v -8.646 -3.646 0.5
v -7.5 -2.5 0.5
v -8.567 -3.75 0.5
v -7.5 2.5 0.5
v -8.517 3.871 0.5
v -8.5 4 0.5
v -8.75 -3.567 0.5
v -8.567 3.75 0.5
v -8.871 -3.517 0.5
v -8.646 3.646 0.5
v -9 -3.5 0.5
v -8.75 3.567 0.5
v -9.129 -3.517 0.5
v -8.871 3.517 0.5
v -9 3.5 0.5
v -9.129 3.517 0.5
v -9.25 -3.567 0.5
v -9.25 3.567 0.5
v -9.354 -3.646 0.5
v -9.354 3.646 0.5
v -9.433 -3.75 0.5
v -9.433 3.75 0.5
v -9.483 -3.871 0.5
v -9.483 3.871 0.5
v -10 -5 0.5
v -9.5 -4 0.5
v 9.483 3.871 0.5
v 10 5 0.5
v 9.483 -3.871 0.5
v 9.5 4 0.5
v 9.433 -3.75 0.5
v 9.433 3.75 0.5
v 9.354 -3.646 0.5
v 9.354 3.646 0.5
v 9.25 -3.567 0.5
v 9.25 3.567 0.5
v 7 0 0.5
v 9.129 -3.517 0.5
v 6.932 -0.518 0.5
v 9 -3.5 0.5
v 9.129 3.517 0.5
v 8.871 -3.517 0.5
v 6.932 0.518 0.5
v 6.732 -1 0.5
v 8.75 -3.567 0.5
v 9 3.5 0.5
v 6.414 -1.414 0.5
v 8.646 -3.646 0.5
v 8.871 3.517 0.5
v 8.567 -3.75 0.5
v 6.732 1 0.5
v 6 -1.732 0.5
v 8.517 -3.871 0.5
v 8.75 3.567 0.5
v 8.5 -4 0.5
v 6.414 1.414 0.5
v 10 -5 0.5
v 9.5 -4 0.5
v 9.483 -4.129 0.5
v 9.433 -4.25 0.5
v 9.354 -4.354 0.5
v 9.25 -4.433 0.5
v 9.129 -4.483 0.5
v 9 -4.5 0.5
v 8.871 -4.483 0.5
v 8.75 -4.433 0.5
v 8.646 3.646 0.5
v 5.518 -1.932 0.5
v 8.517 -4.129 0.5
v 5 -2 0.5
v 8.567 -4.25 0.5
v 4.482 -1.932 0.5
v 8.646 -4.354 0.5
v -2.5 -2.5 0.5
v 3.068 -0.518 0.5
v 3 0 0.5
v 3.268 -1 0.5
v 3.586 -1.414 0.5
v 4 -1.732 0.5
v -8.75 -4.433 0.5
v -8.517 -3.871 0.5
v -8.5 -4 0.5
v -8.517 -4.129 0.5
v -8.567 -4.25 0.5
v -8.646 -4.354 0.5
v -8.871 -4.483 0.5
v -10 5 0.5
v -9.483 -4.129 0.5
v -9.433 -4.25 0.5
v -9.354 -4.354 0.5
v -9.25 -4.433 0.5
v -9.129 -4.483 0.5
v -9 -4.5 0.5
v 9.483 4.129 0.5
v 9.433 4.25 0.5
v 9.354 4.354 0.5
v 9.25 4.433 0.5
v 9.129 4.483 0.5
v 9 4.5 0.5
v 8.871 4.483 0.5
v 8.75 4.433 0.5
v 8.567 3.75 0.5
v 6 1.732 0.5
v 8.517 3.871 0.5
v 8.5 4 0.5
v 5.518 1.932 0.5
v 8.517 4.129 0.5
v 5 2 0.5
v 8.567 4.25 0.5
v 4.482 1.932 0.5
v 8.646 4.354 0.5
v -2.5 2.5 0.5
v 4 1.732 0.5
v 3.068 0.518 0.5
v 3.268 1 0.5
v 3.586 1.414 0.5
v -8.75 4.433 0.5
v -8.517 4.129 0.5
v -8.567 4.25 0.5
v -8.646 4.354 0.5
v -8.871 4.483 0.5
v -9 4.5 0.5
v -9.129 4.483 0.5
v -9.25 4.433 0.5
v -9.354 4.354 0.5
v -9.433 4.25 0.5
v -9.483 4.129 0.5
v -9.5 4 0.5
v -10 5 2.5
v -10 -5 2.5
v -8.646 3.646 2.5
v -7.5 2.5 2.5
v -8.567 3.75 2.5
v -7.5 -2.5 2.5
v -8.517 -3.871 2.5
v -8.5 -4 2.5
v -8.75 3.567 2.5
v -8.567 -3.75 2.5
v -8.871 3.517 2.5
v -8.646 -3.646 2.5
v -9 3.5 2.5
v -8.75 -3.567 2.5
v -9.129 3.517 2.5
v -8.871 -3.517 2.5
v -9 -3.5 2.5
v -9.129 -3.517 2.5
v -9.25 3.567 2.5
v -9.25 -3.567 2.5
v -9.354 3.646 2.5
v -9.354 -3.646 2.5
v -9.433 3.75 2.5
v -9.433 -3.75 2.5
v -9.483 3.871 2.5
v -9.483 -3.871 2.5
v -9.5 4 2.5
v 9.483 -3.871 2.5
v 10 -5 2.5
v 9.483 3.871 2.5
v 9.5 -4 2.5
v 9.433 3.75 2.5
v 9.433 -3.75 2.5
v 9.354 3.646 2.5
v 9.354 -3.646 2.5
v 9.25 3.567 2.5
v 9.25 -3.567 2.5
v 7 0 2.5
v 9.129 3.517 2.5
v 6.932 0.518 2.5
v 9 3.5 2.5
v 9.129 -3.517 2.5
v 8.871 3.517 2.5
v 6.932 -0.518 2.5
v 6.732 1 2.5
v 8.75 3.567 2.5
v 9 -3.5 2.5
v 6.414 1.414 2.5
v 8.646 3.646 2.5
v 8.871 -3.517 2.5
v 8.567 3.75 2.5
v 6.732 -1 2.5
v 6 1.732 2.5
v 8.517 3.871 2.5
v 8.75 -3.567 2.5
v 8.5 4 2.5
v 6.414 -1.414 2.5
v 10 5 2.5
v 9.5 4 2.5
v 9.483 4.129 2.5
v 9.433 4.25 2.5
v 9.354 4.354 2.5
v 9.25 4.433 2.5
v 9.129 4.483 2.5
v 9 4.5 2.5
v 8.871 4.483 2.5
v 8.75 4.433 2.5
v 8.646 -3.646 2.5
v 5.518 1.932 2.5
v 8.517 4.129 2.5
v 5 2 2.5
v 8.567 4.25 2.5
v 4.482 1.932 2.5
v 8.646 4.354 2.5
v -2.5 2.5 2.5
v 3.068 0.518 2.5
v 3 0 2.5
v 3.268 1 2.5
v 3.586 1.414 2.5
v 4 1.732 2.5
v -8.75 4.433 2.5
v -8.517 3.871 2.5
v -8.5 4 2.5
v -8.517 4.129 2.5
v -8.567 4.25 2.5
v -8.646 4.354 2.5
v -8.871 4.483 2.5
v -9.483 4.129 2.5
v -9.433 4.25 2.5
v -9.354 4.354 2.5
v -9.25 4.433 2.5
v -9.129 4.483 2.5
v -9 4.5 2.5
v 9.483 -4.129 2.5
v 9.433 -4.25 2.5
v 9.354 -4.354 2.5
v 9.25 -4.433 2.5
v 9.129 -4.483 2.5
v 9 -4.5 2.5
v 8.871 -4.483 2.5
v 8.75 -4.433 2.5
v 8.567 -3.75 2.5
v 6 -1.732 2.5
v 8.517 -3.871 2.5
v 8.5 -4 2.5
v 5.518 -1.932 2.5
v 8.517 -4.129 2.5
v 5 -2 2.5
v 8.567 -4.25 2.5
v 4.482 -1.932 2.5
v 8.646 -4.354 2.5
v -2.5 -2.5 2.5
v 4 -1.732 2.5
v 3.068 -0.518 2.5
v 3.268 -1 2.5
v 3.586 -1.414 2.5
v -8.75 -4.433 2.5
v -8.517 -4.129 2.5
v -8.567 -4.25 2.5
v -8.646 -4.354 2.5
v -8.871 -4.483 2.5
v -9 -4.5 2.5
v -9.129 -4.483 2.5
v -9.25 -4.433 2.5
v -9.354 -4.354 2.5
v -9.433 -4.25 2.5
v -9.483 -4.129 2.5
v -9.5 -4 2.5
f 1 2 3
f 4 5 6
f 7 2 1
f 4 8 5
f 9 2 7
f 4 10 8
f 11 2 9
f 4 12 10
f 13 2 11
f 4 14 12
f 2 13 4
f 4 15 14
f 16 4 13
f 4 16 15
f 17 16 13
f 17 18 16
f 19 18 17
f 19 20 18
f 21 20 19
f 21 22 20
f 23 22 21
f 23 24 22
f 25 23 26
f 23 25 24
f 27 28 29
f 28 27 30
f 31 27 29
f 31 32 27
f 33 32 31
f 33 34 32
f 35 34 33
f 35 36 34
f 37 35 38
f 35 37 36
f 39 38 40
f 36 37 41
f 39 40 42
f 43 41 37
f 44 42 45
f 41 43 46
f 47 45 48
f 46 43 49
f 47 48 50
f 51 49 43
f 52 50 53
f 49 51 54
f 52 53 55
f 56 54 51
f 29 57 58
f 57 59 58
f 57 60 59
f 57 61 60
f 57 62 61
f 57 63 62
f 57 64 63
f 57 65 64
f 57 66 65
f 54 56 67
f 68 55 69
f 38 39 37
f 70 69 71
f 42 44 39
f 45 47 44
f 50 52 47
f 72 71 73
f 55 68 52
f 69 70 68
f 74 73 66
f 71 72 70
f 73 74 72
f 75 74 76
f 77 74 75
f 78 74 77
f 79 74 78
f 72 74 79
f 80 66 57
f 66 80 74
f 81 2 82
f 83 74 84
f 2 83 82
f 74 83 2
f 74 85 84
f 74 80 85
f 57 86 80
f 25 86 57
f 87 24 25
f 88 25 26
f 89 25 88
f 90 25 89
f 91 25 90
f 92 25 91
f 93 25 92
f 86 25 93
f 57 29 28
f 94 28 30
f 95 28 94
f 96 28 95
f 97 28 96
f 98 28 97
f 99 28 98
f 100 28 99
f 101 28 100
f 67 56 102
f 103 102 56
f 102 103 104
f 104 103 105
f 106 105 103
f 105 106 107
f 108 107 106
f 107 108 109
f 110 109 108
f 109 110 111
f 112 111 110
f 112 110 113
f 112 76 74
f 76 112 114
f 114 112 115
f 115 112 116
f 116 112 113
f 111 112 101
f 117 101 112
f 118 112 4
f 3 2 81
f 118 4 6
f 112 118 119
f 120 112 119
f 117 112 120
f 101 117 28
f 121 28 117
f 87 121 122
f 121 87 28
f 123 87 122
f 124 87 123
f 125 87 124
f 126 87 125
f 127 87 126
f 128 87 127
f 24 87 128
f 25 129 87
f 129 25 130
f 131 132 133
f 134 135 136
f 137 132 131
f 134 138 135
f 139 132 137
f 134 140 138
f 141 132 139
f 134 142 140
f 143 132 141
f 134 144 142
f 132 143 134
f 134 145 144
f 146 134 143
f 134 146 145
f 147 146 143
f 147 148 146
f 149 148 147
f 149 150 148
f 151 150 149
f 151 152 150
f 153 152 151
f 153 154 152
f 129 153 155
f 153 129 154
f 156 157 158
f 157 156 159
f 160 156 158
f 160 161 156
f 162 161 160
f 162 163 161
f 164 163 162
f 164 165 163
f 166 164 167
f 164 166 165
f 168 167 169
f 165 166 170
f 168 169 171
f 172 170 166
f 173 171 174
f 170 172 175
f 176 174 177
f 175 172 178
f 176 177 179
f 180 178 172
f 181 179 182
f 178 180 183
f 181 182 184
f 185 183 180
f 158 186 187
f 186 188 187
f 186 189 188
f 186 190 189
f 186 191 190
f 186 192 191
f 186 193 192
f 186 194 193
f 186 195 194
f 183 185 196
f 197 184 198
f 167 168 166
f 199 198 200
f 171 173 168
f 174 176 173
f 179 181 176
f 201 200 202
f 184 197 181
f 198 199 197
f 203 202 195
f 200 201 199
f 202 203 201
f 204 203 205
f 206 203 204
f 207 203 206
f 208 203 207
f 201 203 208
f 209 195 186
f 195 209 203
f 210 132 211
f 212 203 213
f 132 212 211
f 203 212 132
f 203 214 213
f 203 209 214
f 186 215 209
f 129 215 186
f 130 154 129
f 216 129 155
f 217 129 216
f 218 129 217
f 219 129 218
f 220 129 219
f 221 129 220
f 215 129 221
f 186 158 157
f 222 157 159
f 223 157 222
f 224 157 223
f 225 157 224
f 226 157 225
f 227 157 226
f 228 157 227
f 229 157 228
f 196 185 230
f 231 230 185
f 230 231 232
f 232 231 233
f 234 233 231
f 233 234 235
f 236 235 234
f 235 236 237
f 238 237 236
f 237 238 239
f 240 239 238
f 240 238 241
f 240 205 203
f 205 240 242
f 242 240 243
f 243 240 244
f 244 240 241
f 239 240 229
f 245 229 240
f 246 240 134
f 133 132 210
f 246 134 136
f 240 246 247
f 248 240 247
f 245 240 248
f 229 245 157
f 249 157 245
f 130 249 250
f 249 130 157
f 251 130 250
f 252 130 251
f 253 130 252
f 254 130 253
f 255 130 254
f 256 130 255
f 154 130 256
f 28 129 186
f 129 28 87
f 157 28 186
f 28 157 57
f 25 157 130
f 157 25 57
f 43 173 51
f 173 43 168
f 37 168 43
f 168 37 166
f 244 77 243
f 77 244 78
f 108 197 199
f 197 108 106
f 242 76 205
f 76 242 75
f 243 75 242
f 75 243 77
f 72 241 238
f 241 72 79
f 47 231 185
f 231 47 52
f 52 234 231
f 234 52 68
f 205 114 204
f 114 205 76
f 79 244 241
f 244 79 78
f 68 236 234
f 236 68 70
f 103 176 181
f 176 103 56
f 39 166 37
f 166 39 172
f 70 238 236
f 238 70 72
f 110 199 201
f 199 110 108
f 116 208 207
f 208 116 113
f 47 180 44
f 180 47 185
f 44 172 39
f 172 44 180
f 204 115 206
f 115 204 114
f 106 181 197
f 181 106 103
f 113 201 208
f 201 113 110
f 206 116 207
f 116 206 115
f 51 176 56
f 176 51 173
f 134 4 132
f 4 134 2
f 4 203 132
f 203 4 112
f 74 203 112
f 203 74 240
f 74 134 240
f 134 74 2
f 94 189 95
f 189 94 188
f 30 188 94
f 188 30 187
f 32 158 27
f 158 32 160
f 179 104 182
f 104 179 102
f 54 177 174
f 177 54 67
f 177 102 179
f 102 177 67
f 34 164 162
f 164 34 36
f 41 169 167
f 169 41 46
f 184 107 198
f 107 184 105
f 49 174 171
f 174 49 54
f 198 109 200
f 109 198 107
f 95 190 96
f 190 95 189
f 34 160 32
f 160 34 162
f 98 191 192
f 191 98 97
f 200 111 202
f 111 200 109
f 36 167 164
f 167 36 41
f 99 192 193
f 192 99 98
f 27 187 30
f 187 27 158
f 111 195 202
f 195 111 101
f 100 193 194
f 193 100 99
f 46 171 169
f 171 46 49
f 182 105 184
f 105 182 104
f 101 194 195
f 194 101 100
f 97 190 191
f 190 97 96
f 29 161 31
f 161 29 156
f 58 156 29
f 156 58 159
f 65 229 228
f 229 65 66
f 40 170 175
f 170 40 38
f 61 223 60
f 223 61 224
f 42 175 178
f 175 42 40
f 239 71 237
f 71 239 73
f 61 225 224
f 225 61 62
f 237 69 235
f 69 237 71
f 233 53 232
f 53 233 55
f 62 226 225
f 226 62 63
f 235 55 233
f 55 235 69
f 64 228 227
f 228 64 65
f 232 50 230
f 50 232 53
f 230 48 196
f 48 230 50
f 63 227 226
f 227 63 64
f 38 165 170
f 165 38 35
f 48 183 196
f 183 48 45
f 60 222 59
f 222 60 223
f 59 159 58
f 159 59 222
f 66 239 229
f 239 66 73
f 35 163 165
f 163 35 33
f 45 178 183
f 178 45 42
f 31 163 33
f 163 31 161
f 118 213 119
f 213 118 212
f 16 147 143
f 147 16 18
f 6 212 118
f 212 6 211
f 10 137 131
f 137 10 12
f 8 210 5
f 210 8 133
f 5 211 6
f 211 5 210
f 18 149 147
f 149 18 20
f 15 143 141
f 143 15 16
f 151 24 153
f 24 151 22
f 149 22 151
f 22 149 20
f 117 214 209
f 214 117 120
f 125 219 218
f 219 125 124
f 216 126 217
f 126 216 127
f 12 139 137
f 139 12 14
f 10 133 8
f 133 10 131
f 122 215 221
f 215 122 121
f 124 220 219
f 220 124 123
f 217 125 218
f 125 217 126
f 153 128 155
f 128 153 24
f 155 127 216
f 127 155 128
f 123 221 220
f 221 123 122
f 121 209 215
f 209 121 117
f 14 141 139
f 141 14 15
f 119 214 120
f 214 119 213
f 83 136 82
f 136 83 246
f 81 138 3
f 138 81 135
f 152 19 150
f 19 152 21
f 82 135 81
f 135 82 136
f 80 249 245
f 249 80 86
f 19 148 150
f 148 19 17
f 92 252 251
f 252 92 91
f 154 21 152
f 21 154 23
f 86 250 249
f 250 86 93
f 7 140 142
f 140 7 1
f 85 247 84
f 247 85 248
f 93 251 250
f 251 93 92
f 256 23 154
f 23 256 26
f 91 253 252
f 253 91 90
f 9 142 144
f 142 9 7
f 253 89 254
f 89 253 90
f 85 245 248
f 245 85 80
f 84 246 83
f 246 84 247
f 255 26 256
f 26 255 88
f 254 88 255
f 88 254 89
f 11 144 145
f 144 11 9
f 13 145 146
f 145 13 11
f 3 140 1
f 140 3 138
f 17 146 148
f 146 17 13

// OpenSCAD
// This is a simple panel design with Cutouts by Trevor Smale
// T

echo(version=version());

// Intersection 1

difference() {

// Base rectangle

color("red")
    translate([0, 0, 0.5])
        linear_extrude(height = 2)
            square([20, 10], center = true);
           
// Boolean Difference Object 1
// Note: by adding $fn I can specify the number of facets of the cylinder

color("blue")
    translate([5, 0, 0])
        linear_extrude(height = 3)
            circle(r = 2, $fn=24, center = true);
            
// Boolean Difference Object 2
            
color("magenta")
    translate([-5, 0, 0])
        linear_extrude(height = 3)
            square([5, 5], center = true);
    
// Boolean Difference Object 3
// Corner Screw Hole

color("green")
    translate([9, 4, 0])
        linear_extrude(height = 3)
            circle(r = 0.5, $fn=24, center = true);

// Boolean Difference Object 4
// Corner Screw Hole

color("yellow")
    translate([9, -4, 0])
        linear_extrude(height = 3)
            circle(r = 0.5, $fn=24, center = true);
            
// Boolean Difference Object 5
// Corner Screw Hole

color("orange")
    translate([-9, 4, 0])
        linear_extrude(height = 3)
            circle(r = 0.5, $fn=24, center = true);

// Boolean Difference Object 6
// Corner Screw Hole

color("magenta")
    translate([-9, -4, 0])
        linear_extrude(height = 3)
            circle(r = 0.5, $fn=24, center = true);

}
